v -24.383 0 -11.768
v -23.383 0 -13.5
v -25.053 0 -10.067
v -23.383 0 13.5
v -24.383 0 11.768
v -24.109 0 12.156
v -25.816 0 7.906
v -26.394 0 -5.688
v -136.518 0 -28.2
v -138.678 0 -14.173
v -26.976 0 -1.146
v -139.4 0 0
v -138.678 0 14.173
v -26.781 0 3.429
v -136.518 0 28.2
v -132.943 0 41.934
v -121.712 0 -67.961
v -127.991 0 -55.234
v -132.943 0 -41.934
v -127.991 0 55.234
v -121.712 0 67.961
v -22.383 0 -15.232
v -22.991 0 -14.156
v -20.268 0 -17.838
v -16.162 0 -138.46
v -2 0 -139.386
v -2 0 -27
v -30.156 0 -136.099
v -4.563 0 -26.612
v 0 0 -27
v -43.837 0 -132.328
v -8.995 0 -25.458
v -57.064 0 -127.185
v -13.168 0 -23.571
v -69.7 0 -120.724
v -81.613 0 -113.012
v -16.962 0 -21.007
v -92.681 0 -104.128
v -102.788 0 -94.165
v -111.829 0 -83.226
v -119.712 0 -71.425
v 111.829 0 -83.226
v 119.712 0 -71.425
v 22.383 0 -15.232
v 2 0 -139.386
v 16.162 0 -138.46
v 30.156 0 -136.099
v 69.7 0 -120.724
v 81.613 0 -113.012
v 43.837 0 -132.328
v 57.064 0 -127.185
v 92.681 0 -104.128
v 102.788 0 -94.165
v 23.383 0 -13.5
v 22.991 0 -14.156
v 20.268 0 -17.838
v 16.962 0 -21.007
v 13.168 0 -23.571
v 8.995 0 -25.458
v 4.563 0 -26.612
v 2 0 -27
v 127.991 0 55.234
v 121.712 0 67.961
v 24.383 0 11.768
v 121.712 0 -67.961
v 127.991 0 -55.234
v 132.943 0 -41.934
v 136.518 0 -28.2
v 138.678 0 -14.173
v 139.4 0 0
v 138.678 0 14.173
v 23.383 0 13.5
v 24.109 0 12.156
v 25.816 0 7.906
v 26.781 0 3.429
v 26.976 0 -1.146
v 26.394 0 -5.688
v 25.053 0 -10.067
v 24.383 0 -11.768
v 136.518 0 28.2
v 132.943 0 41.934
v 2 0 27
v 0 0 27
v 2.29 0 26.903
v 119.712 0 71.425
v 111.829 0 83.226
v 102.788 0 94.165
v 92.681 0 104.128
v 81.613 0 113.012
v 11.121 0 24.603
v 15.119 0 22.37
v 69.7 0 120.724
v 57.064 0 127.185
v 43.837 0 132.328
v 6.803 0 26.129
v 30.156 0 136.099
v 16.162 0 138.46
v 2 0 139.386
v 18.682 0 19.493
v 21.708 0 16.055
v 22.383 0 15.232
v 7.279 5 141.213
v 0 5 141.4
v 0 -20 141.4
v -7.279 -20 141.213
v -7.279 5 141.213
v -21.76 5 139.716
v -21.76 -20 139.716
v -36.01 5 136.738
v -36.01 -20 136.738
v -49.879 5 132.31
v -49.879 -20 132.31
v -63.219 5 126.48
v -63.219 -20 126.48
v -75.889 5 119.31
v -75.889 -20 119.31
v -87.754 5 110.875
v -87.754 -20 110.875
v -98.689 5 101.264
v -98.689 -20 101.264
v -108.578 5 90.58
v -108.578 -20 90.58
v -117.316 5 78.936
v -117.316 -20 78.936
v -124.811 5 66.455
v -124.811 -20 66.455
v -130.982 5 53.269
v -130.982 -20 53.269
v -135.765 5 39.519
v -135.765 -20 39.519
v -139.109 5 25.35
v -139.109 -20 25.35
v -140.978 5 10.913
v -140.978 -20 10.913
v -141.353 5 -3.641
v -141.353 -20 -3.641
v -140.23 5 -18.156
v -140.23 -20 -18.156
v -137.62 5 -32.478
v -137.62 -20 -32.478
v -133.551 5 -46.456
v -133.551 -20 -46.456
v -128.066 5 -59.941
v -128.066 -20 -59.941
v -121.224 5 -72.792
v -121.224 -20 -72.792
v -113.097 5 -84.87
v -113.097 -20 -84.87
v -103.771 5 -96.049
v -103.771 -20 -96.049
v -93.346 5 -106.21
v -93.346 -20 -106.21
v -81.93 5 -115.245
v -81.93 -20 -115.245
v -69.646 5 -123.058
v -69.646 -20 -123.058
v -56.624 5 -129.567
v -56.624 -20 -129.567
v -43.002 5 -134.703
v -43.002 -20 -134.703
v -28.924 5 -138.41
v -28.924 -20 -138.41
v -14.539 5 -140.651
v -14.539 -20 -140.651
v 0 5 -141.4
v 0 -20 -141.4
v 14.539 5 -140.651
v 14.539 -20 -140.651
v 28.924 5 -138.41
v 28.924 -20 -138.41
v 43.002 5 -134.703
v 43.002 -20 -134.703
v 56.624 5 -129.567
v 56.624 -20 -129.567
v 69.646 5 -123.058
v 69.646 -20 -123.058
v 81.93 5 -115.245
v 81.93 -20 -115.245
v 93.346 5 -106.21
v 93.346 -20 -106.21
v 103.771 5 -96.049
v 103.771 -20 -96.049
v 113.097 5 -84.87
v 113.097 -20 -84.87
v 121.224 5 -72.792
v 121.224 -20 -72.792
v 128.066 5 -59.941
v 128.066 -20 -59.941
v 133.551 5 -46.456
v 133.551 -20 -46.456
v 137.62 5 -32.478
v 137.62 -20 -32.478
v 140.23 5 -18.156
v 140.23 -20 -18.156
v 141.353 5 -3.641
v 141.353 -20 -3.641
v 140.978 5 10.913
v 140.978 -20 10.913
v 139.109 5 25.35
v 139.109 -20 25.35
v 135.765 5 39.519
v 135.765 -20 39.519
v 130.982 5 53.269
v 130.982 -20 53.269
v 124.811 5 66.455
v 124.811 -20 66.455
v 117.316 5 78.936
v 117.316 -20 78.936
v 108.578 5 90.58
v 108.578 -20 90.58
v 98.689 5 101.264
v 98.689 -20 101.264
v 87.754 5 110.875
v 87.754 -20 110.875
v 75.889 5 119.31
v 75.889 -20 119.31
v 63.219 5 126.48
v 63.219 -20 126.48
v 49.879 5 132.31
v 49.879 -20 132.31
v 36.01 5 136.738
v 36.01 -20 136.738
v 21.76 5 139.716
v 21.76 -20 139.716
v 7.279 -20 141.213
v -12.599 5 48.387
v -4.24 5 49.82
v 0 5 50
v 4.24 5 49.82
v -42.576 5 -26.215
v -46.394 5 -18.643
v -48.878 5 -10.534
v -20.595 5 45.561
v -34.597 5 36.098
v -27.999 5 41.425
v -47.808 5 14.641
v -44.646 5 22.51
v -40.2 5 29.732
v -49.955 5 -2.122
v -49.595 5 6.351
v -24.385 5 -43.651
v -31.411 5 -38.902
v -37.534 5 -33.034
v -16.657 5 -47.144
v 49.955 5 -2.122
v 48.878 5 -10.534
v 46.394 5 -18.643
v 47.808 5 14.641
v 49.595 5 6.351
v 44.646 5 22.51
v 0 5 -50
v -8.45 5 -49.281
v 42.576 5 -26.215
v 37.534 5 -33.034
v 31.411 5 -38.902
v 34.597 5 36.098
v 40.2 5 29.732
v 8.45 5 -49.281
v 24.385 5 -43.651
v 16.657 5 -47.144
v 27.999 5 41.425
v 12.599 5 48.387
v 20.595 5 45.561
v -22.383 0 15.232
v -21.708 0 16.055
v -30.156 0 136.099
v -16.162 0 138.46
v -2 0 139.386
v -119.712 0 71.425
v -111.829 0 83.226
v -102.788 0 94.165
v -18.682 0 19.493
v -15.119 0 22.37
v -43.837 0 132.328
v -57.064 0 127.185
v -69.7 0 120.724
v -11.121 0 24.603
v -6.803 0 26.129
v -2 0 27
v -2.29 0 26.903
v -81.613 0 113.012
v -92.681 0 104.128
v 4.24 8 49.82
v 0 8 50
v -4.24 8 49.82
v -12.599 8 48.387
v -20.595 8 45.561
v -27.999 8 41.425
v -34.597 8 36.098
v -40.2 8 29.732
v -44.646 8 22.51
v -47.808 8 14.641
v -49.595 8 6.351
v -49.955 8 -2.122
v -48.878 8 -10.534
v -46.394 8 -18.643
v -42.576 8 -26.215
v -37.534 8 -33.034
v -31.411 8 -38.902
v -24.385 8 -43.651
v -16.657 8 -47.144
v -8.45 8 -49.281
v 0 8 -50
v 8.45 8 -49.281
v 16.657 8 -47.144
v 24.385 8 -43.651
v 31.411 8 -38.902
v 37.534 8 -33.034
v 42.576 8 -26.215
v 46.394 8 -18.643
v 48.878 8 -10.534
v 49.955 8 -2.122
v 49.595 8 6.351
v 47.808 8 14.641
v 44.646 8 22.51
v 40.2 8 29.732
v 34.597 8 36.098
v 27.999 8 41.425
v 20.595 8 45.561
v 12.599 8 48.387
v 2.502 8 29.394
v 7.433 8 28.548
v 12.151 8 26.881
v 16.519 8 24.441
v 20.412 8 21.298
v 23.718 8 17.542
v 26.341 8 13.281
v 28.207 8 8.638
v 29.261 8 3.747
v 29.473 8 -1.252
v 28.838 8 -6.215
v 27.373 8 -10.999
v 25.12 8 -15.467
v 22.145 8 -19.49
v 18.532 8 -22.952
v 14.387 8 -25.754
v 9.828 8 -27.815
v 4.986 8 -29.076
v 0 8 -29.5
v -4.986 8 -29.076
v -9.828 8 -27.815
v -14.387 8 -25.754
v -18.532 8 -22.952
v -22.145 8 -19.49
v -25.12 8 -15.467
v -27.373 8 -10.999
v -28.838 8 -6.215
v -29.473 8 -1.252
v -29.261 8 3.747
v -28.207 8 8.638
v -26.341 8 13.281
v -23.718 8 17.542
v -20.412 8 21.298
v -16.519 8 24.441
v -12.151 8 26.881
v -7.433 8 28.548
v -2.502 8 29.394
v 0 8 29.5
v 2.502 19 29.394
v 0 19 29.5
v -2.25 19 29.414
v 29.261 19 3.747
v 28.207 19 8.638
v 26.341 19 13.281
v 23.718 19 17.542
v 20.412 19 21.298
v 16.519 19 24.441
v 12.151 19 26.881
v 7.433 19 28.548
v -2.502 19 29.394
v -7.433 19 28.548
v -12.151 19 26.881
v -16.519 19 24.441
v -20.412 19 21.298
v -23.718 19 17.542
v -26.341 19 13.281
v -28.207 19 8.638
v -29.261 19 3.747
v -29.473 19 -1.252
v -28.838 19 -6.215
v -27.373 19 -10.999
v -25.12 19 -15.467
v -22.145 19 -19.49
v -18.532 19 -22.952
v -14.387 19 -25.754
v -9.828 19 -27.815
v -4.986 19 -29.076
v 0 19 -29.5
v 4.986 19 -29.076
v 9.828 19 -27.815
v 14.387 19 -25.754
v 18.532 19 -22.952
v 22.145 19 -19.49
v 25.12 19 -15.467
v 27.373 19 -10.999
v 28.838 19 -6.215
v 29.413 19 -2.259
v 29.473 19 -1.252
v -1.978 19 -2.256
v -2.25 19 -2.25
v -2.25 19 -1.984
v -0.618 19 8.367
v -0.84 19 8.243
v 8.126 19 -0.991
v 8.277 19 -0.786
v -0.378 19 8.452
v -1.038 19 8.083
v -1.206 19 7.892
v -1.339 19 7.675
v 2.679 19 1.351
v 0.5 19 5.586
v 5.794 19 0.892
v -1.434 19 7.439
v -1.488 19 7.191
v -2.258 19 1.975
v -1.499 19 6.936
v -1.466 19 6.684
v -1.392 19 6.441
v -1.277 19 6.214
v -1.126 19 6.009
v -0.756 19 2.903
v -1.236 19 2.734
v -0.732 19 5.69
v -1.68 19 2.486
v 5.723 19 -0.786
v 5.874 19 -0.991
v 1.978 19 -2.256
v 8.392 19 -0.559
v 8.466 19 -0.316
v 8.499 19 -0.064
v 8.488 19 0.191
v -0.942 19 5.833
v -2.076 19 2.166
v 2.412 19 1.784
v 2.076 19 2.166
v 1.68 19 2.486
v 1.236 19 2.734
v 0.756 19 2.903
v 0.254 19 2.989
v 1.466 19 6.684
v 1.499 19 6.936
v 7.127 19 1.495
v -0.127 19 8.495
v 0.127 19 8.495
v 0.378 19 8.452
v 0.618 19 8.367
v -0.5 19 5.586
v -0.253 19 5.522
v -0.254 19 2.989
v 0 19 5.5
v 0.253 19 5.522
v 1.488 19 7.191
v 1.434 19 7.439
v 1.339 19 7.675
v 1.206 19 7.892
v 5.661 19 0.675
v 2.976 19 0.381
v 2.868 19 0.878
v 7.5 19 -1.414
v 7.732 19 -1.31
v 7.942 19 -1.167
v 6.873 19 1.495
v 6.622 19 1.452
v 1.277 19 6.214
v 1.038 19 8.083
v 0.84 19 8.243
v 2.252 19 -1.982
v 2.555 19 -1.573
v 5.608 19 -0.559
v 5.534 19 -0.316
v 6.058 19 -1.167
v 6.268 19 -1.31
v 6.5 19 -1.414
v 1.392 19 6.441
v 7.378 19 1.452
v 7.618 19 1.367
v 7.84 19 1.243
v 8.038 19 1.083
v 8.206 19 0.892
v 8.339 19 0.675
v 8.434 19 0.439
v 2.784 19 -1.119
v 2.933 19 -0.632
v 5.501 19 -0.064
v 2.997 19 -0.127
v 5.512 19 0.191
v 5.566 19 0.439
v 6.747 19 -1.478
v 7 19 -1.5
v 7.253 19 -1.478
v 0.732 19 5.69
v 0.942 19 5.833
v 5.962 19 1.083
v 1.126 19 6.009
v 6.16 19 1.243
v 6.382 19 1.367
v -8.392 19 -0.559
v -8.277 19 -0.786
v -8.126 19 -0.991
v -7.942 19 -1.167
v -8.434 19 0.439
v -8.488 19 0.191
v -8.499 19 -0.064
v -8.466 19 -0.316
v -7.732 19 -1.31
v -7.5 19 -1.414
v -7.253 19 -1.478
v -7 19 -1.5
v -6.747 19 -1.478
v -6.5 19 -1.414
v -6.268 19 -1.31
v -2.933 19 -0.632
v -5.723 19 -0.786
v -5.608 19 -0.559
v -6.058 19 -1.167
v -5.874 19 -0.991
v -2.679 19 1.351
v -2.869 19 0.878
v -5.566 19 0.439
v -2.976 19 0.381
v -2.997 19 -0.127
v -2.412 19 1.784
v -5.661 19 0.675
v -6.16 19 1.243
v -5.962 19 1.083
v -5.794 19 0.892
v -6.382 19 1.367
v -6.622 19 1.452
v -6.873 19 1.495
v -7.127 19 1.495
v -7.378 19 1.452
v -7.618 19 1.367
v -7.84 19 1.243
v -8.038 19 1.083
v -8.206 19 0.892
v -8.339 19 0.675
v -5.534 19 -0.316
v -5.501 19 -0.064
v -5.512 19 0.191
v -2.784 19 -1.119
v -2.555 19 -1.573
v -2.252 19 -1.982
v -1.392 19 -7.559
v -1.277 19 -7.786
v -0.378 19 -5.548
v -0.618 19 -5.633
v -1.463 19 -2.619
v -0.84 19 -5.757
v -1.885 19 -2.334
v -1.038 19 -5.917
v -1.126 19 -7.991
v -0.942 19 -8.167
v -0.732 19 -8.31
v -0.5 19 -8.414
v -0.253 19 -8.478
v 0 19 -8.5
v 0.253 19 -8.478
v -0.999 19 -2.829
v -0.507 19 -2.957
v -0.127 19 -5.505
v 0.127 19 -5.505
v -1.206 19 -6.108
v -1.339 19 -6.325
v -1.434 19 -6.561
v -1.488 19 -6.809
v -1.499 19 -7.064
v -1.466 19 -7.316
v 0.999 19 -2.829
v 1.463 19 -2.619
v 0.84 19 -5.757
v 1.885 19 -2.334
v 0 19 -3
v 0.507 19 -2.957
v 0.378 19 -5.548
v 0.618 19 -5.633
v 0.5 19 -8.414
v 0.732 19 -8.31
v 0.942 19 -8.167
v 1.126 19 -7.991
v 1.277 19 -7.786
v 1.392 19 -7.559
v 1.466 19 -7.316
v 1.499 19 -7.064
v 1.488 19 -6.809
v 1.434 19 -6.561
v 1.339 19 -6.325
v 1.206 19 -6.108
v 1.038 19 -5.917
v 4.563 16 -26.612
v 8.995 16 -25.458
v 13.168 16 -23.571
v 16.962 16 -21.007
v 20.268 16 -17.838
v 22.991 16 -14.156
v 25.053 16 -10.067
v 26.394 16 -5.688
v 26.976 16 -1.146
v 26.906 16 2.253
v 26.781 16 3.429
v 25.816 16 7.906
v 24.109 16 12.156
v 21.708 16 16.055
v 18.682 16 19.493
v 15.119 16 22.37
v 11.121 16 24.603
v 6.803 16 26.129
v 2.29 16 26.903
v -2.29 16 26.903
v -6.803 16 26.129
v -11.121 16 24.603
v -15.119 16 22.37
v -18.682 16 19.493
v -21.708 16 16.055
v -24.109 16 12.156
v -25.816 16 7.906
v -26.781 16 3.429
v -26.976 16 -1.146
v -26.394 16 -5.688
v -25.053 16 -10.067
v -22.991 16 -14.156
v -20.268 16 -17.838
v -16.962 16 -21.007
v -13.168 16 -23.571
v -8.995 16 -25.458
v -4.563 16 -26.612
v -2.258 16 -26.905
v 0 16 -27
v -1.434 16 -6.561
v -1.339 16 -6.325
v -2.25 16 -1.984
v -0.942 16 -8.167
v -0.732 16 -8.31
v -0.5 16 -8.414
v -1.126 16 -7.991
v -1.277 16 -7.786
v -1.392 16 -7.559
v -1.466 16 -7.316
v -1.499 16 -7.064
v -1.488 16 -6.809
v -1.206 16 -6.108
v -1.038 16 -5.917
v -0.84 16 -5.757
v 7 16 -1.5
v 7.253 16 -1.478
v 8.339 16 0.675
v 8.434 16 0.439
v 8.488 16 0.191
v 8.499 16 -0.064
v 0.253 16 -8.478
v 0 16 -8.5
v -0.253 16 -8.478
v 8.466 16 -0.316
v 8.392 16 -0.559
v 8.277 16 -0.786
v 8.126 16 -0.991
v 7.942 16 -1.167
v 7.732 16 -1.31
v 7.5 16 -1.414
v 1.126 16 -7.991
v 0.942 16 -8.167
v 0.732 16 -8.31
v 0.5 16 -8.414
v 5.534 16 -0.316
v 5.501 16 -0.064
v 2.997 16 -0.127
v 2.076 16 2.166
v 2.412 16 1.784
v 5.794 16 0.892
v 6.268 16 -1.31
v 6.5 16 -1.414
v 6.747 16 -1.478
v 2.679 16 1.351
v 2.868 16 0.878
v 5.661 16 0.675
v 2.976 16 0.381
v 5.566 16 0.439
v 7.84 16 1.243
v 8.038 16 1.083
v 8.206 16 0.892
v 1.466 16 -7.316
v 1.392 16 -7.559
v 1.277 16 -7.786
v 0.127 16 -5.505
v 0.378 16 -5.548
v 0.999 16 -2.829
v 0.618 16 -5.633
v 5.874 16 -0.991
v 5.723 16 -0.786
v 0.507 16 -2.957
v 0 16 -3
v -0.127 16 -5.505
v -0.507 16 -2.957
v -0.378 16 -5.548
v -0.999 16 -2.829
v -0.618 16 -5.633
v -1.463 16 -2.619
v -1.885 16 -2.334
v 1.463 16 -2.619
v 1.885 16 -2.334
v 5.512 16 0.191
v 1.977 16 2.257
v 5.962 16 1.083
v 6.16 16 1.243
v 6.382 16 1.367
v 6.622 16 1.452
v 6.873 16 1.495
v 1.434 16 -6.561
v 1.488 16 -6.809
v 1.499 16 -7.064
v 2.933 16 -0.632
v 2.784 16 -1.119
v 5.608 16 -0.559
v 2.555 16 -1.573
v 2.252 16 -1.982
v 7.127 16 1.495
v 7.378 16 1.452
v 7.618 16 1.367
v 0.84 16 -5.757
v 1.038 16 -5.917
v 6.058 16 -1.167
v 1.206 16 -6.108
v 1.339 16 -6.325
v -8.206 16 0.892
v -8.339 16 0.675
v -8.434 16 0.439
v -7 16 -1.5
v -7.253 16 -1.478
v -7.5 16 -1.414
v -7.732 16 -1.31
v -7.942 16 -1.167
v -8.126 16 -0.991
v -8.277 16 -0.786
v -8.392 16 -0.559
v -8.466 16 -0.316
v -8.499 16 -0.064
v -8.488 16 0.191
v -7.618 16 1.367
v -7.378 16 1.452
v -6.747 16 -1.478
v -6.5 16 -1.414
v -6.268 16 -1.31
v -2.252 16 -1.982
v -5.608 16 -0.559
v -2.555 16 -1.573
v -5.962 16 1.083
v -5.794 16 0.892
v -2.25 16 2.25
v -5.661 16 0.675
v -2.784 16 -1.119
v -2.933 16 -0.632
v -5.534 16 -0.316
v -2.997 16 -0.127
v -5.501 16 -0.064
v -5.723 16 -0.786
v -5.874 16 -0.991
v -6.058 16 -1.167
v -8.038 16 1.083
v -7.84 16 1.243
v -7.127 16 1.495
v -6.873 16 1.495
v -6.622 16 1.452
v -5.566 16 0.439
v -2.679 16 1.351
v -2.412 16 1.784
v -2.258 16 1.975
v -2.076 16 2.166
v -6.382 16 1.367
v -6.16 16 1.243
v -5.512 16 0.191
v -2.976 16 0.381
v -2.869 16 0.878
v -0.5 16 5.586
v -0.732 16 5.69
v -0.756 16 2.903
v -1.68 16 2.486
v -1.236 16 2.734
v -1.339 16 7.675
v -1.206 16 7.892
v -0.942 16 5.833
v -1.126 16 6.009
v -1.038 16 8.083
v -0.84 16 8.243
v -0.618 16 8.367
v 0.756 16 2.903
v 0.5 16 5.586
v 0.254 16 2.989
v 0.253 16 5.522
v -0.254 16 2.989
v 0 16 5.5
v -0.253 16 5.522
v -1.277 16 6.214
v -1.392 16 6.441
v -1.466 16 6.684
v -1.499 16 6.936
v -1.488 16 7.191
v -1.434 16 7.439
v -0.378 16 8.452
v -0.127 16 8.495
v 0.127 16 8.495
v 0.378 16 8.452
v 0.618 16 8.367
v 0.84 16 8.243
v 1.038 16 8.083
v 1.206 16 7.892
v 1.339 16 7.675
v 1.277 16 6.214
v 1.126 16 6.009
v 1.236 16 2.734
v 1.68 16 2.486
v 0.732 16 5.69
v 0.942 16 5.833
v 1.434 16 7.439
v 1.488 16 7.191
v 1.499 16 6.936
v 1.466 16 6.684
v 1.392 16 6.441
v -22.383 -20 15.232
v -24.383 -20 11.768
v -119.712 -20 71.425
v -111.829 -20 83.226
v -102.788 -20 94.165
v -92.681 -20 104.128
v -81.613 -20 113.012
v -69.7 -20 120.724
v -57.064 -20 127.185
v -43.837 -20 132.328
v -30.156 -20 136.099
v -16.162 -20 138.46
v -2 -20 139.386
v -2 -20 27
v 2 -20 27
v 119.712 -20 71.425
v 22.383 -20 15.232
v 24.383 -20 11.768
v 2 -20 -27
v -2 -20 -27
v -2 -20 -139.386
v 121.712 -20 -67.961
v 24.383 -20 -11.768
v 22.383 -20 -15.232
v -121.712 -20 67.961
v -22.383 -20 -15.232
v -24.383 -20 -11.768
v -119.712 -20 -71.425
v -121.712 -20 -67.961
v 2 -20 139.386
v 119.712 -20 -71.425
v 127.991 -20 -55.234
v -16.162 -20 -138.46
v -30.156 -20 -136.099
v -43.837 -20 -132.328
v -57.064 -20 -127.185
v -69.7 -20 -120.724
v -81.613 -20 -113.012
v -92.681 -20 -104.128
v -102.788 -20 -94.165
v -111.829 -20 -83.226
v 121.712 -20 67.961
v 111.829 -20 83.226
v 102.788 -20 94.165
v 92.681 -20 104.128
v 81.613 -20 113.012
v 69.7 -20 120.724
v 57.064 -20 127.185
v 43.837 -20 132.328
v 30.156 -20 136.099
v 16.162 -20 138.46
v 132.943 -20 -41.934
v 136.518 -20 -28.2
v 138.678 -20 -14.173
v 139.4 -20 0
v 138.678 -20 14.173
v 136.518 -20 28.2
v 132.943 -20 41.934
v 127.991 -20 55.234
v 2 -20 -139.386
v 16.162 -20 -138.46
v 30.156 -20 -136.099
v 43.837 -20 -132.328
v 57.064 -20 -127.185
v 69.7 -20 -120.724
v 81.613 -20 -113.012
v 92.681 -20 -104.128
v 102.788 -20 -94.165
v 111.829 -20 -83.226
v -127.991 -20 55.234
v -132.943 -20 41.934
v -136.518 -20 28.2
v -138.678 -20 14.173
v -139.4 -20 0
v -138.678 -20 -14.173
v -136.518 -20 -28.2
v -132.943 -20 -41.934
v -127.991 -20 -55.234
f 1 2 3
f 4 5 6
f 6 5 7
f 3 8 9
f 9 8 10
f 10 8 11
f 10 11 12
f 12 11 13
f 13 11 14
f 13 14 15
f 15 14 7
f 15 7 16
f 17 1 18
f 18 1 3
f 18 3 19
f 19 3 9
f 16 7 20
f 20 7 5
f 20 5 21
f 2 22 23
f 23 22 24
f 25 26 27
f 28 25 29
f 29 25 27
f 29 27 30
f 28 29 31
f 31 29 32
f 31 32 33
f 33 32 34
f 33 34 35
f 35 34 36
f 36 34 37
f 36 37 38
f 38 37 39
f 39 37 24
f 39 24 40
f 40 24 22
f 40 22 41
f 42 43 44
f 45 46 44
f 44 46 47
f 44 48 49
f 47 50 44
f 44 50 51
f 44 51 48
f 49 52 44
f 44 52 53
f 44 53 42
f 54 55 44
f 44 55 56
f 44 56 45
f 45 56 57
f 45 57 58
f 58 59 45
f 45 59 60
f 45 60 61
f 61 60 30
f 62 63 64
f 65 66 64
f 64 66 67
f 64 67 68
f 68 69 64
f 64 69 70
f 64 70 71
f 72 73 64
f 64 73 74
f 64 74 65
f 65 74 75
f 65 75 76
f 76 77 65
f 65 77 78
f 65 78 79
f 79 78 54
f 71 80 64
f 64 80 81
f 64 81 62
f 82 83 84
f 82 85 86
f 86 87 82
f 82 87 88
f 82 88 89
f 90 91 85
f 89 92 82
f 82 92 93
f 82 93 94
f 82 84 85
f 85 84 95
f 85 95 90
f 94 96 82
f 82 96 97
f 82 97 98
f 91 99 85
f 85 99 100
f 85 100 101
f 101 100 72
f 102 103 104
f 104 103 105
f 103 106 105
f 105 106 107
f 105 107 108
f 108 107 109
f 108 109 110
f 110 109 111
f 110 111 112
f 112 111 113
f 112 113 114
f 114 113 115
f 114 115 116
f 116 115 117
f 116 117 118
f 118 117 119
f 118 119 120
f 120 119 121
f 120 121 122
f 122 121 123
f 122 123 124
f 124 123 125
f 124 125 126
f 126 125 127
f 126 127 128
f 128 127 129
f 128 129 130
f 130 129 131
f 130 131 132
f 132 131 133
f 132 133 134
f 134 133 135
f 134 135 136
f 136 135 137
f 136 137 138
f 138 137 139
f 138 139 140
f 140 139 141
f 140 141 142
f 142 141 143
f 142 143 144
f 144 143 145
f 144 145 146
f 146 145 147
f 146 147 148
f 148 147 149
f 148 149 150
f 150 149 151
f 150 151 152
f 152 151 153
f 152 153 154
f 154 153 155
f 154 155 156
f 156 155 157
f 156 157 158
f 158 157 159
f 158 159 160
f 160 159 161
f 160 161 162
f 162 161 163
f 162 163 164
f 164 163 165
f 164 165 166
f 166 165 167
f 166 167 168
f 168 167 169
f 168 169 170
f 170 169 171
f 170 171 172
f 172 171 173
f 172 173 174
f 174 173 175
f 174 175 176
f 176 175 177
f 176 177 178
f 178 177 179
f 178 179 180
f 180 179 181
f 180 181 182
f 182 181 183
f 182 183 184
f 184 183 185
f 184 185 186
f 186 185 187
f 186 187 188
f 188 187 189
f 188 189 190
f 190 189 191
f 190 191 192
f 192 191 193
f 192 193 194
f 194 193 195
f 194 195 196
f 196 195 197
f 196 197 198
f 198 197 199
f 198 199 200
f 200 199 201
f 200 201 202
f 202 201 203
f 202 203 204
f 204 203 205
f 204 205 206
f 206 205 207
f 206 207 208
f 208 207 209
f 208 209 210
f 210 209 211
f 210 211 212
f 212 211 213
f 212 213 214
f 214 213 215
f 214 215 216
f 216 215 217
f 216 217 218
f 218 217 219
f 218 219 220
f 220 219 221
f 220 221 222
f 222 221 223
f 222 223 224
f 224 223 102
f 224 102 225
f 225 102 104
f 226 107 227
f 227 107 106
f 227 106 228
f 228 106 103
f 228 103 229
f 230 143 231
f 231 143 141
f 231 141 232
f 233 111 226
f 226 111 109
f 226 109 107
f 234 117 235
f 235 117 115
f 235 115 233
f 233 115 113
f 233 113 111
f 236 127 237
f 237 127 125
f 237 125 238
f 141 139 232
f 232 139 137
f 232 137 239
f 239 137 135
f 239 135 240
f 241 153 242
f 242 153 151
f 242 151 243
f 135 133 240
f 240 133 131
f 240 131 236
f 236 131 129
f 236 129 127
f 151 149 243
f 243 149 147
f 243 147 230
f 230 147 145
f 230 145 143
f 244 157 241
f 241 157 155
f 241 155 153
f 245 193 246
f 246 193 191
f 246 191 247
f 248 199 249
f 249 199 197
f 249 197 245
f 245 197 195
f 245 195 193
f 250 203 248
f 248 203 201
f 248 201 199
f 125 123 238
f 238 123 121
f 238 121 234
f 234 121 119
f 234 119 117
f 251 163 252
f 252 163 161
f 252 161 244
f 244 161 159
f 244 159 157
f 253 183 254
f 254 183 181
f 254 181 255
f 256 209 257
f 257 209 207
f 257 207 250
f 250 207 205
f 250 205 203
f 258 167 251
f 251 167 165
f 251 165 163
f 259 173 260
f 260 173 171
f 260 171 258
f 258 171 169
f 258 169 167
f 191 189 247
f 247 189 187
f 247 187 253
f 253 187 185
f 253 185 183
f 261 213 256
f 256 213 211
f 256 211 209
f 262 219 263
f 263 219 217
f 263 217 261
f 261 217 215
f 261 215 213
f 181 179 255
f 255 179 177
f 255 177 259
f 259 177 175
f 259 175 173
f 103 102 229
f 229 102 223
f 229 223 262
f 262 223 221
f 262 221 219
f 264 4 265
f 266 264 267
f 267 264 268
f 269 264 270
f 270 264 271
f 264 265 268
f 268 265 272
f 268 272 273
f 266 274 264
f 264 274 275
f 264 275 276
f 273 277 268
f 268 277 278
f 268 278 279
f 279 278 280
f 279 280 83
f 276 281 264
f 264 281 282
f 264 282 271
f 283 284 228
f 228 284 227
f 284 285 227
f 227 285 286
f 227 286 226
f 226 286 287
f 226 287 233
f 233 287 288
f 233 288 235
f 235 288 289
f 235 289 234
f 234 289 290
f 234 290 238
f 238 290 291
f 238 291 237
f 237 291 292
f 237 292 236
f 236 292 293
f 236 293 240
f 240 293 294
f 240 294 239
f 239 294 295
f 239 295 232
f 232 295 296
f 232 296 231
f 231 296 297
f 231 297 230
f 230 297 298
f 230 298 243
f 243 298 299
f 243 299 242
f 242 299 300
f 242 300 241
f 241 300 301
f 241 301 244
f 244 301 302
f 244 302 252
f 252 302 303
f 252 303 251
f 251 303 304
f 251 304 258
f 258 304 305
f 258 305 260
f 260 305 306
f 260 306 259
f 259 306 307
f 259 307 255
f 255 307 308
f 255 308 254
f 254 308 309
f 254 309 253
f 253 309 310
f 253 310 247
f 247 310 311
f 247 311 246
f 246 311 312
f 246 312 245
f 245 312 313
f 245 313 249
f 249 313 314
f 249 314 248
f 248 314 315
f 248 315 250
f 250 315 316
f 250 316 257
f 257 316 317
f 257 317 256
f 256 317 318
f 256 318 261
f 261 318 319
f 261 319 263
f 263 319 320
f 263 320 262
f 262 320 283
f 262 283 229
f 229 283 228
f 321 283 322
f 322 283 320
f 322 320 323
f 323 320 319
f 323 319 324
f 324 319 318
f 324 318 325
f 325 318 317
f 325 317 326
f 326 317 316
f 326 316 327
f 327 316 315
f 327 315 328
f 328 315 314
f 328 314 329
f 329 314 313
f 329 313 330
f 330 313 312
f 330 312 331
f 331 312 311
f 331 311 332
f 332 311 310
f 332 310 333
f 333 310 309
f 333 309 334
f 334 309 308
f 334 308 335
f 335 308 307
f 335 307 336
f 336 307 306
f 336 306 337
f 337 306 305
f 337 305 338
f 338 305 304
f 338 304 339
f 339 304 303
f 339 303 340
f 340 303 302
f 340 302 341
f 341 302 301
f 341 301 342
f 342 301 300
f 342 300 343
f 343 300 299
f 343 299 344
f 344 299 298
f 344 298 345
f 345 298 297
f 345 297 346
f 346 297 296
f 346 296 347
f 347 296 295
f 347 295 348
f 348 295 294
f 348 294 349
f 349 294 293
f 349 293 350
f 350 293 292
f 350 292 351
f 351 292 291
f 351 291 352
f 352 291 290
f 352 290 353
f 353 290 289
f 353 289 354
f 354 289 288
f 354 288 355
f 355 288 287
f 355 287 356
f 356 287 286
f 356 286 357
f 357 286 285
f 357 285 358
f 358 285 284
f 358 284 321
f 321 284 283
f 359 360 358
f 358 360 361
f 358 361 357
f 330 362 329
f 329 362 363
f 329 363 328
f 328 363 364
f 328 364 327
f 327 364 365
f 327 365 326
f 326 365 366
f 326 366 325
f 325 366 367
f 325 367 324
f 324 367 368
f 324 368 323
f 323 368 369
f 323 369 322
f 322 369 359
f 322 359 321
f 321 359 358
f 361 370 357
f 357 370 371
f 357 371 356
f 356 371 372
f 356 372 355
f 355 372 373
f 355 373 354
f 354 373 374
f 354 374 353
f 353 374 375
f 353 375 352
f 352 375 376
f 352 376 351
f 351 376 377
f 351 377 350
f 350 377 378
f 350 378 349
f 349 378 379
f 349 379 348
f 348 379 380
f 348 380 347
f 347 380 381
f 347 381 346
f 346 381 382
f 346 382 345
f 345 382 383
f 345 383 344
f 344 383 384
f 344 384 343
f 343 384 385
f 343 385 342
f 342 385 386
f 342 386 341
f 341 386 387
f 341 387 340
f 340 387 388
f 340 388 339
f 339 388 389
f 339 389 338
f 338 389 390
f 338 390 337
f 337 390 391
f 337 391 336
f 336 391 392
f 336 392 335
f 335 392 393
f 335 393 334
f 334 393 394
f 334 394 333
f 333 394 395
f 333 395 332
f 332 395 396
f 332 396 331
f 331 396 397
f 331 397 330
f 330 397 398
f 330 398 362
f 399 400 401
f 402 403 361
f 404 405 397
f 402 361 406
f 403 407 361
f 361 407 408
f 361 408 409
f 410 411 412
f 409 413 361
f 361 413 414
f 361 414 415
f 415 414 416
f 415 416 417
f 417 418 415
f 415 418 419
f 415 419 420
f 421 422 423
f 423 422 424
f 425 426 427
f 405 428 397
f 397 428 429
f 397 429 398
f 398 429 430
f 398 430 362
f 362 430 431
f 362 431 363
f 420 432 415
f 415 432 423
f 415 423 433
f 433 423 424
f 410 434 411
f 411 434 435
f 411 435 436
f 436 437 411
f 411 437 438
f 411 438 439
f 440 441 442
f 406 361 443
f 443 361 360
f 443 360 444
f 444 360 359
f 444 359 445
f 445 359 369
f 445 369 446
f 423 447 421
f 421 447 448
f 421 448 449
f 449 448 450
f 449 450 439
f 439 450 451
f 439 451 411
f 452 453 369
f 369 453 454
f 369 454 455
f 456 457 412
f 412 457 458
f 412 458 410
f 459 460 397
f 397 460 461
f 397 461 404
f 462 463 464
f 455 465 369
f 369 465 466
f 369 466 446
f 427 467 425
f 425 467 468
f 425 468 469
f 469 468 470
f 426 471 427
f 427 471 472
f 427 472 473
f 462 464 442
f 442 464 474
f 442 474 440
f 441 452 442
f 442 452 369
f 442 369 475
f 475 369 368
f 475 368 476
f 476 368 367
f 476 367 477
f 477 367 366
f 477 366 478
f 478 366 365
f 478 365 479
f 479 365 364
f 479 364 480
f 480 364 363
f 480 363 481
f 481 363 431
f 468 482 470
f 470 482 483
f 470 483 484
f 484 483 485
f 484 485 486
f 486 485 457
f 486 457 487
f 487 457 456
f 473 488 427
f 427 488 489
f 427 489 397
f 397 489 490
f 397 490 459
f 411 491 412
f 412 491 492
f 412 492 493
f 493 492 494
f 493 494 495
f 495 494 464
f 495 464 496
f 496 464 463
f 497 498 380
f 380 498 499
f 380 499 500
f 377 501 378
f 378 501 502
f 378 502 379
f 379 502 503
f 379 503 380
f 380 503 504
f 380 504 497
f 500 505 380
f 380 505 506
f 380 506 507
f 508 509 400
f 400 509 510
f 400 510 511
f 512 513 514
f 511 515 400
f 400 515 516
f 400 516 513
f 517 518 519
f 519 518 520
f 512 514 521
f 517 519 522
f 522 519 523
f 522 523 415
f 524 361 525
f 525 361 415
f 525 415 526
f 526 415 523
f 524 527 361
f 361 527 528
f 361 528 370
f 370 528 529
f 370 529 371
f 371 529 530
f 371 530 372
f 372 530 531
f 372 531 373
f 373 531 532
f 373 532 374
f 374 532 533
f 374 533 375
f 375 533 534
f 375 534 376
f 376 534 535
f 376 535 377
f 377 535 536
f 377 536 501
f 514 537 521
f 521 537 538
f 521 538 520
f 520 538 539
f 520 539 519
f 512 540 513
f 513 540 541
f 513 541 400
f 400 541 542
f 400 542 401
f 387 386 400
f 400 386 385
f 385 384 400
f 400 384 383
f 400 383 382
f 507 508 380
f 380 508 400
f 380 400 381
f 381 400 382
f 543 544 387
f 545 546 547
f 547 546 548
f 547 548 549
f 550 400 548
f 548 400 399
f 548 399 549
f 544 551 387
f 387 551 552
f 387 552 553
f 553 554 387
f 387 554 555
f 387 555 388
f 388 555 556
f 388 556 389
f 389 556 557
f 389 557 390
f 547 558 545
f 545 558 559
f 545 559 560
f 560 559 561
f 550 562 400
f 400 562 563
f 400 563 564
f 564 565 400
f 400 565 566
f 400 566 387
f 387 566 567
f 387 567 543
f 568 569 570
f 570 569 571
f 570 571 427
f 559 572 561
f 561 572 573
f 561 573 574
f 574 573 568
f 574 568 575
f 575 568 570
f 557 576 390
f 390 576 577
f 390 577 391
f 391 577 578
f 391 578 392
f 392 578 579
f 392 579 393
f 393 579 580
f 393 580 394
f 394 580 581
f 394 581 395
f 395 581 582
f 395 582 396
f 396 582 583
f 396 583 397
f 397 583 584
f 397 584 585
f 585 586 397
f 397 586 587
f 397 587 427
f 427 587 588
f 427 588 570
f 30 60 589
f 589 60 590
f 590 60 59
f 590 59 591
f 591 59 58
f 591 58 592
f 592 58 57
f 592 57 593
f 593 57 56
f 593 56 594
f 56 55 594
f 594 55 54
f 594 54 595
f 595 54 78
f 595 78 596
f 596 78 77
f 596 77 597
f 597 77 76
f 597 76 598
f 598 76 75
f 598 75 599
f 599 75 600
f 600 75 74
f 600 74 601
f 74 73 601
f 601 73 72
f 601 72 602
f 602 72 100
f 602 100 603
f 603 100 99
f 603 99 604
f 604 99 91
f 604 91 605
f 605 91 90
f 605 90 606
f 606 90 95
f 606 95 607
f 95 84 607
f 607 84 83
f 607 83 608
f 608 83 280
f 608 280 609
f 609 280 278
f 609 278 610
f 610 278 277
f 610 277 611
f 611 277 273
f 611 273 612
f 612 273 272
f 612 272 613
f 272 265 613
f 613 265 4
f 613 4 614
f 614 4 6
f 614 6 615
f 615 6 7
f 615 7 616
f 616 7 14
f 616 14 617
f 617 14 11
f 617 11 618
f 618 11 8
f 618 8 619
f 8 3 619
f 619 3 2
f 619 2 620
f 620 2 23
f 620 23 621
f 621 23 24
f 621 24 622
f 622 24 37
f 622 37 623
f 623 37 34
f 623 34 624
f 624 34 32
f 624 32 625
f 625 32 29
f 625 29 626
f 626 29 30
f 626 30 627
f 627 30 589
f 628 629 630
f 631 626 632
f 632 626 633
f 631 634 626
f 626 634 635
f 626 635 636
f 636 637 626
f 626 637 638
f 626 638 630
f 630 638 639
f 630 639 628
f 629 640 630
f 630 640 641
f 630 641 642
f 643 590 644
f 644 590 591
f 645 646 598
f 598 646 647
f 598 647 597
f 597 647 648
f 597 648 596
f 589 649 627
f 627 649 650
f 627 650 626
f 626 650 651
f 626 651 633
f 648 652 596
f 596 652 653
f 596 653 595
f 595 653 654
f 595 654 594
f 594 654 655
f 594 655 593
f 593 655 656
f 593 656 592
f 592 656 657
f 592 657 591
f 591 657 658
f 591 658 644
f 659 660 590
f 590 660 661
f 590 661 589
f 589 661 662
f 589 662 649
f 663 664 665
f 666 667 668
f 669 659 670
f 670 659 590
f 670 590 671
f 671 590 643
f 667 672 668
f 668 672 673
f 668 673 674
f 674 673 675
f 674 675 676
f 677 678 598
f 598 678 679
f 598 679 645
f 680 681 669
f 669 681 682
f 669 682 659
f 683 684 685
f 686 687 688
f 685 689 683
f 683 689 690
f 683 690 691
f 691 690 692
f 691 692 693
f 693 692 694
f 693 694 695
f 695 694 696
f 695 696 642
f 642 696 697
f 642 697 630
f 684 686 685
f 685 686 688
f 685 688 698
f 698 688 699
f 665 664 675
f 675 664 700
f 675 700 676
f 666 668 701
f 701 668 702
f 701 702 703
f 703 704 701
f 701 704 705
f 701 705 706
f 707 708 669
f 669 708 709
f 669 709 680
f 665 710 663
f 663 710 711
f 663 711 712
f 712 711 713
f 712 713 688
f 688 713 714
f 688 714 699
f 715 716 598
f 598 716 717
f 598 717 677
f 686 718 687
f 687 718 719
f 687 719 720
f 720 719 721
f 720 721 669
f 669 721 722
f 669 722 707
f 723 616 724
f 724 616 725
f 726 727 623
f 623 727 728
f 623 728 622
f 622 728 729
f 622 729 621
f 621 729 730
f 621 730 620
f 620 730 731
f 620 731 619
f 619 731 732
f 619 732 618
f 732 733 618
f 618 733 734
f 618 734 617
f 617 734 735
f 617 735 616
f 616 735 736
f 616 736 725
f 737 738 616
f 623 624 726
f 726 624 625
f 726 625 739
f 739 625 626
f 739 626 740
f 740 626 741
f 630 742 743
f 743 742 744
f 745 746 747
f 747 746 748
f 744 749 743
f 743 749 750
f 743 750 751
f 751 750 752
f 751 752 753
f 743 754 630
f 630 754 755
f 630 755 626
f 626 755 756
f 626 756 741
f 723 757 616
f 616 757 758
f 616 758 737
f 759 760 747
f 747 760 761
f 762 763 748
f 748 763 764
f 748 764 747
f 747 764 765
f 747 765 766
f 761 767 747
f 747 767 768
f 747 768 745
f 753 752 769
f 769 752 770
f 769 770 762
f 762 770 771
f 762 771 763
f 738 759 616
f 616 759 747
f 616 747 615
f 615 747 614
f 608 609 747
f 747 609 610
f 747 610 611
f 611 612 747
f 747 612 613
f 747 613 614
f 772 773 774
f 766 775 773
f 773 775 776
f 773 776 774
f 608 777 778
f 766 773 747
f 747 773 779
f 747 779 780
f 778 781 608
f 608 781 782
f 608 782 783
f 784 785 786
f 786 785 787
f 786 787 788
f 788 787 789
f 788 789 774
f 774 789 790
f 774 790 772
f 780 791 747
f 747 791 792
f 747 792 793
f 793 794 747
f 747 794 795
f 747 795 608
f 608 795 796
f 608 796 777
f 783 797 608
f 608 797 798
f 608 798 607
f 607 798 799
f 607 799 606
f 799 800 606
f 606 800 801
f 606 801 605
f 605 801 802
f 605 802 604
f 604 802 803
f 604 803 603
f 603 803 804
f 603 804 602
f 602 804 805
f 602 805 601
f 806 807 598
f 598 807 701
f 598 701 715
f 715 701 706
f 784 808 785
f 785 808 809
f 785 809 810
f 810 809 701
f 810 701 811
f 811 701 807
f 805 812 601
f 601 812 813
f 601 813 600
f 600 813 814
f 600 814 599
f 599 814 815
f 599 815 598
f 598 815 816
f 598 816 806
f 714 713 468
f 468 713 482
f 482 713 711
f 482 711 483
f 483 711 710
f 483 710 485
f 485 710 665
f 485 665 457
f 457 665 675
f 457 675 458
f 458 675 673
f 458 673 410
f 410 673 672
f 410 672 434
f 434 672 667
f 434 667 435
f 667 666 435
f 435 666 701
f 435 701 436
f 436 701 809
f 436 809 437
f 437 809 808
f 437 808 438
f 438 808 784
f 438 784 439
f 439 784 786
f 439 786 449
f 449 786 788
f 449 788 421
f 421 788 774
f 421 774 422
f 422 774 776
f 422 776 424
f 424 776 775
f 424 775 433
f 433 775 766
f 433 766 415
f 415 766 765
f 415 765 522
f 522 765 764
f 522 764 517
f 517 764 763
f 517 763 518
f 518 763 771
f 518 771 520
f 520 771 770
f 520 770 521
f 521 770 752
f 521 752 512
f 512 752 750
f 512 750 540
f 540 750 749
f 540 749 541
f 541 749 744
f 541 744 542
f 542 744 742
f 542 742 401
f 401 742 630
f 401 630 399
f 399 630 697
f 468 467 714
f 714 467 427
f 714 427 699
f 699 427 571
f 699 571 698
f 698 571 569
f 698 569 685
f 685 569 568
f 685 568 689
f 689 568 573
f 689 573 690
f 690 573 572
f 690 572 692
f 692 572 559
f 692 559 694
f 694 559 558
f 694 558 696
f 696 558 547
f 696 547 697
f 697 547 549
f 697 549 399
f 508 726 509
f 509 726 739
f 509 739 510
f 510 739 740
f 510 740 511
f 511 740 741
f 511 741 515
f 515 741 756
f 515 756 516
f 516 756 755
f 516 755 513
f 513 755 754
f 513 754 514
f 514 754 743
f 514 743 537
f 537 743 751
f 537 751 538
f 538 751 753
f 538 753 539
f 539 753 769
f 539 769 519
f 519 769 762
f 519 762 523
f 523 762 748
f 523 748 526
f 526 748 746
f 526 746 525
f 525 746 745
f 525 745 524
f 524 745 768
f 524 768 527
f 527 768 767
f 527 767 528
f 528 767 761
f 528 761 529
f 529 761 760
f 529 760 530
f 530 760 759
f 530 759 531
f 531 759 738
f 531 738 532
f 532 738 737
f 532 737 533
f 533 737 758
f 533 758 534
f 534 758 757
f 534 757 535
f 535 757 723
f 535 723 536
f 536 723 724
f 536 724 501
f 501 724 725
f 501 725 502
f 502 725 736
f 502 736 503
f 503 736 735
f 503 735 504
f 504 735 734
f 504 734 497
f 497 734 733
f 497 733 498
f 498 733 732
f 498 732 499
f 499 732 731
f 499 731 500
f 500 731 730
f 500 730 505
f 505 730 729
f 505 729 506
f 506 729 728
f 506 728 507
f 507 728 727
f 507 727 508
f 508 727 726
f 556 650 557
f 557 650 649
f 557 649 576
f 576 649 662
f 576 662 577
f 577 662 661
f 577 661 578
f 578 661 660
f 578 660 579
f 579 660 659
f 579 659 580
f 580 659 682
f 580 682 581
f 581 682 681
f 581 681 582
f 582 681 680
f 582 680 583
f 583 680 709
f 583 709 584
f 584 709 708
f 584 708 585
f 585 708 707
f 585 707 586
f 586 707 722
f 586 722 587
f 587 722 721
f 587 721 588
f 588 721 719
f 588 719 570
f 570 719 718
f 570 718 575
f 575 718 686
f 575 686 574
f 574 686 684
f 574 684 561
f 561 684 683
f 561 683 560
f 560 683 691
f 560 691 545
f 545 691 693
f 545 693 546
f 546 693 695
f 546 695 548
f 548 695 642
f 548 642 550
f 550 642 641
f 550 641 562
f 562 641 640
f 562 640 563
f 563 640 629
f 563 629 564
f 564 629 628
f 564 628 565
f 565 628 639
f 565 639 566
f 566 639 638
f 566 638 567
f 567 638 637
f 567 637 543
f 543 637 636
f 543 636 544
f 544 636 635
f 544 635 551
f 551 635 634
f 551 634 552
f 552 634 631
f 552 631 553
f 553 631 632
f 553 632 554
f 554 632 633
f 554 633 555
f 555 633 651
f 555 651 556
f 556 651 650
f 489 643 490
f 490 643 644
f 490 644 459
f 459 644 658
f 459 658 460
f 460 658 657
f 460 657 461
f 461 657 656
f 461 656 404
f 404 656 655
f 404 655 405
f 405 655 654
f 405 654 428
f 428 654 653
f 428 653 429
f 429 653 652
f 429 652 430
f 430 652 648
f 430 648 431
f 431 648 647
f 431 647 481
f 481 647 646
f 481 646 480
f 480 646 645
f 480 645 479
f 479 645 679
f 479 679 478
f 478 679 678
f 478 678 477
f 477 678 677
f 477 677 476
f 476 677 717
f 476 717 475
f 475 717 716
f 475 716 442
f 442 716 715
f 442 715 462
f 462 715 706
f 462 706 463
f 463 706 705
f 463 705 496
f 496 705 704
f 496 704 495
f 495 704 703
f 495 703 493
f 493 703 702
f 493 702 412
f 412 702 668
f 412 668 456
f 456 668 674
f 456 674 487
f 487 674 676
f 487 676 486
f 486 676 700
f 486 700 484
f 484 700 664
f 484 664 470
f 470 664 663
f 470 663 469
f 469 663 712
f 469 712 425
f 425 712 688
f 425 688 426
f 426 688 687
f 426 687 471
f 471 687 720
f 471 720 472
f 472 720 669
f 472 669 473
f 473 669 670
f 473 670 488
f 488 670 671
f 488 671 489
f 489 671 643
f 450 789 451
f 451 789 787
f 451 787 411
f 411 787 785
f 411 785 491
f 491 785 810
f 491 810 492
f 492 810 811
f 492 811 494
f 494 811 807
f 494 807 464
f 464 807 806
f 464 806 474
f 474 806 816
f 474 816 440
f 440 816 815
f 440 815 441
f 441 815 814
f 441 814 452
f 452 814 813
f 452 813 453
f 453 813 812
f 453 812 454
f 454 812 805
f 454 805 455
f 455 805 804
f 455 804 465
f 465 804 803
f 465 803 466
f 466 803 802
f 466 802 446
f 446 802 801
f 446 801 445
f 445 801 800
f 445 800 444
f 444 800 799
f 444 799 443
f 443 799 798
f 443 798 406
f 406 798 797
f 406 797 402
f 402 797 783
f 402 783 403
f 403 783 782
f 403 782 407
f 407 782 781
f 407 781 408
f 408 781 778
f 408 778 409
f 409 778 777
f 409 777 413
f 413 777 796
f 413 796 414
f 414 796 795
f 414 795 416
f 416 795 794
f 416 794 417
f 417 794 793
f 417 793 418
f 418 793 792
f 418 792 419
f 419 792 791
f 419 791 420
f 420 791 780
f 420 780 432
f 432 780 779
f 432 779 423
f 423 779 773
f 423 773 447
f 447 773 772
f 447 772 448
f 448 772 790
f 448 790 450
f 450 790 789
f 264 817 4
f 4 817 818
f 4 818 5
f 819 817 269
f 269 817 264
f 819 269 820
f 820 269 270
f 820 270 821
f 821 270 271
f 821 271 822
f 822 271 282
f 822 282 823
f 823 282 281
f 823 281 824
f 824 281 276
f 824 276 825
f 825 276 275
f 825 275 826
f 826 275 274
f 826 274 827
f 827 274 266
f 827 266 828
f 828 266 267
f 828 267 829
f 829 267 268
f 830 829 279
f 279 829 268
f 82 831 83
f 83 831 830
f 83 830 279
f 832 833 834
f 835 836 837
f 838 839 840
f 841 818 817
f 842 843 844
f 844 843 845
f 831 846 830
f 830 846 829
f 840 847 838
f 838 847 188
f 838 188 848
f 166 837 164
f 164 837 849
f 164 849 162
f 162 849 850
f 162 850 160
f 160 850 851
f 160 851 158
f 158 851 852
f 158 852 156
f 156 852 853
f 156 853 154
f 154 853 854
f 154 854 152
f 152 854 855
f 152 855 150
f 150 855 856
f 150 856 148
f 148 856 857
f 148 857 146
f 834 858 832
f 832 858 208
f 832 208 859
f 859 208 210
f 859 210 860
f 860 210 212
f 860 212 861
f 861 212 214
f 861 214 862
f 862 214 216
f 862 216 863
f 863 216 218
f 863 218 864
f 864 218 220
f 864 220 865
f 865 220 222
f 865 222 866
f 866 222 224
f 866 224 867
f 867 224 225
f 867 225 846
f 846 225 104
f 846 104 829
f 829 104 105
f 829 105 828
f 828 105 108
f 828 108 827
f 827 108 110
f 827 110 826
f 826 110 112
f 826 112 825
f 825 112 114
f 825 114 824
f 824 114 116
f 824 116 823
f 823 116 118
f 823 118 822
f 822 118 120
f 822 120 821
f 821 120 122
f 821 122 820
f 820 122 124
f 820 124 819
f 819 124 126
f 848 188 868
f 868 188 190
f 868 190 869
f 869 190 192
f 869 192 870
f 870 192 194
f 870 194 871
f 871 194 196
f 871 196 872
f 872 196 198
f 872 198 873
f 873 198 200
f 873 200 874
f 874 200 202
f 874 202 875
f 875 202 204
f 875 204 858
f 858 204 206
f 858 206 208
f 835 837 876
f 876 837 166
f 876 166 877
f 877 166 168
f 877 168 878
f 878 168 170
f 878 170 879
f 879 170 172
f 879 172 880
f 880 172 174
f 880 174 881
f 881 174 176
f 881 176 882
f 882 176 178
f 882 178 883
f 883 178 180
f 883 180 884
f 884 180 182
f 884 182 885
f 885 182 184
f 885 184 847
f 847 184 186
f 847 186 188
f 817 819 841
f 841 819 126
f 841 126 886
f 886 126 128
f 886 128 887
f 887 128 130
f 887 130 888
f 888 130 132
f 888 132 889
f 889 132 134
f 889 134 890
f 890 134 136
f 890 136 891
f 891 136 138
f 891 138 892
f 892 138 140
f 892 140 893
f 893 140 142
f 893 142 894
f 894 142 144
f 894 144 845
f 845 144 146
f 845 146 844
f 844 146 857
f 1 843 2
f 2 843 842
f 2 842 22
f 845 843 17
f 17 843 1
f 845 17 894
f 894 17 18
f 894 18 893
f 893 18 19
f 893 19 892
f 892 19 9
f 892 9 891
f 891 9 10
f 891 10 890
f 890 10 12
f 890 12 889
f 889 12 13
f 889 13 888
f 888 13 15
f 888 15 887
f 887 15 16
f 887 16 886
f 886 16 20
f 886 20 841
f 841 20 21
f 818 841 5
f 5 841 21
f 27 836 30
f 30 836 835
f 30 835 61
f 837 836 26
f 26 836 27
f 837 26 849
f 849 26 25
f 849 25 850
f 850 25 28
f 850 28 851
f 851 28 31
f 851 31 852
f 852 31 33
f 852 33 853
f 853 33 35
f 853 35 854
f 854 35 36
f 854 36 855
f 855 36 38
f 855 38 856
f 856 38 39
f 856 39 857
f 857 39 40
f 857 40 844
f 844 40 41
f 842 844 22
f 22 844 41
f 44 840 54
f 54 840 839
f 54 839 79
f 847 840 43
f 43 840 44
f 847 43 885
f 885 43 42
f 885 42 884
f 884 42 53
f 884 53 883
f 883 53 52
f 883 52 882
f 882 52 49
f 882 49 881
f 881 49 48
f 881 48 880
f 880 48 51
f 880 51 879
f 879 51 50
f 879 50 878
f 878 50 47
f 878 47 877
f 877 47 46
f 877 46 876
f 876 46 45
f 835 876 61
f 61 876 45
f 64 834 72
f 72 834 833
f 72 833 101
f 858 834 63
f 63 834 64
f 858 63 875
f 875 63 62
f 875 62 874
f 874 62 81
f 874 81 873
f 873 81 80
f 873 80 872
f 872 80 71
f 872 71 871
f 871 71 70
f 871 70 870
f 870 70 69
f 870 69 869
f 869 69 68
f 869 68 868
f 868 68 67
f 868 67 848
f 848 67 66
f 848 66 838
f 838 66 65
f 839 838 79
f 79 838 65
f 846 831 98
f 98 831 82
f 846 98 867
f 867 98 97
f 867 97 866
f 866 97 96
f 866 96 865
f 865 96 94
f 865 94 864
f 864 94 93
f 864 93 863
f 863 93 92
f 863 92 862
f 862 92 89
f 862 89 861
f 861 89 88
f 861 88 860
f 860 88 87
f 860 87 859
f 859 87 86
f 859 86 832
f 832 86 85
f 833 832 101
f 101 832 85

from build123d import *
from build123d.topology import SkipClean

# Parameters (mm, degrees)
SKETCH_1_R               = 141.4
EXTRUDE_1_DEPTH          = 5
SKETCH_2_R               = 50
EXTRUDE_2_DEPTH          = 3
SKETCH_3_R               = 29.5
EXTRUDE_3_DEPTH          = 11
SKETCH_4_R               = 27
CUT_EXTRUDE_1_DEPTH      = 16
SKETCH_5_R               = 3
SKETCH_5_R_2             = 1.5
CUT_EXTRUDE_2_DEPTH      = 201.608873184
EXTRUDE_START            = 20
EXTRUDE_1_2_DEPTH        = 20
PATTERN_CIRCULAR_1_COUNT = 6


with BuildPart() as part:
    # 草图1 → Extrude 1 (new body)
    with BuildSketch(Plane(origin=(0, 0, 0), x_dir=(1, 0, 0), z_dir=(0, 1, 0))):
        with Locations(Location((0, 0, 0), (0, 0, 270))):
            Circle(SKETCH_1_R)
    extrude(amount=EXTRUDE_1_DEPTH)

    # 草图2 → 凸台-拉伸2 (add)
    with BuildSketch(Plane(origin=(0, 5, 0), x_dir=(1, 0, 0), z_dir=(0, 1, 0))):
        with Locations(Location((0, 0, 0), (0, 0, 270))):
            Circle(SKETCH_2_R)
    extrude(amount=EXTRUDE_2_DEPTH)

    # 草图3 → 凸台-拉伸3 (add)
    with BuildSketch(Plane(origin=(0, 8, 0), x_dir=(1, 0, 0), z_dir=(0, 1, 0))):
        with Locations(Location((0, 0, 0), (0, 0, 270))):
            Circle(SKETCH_3_R)
    extrude(amount=EXTRUDE_3_DEPTH)

    # 草图4 → 切除-拉伸1 (cut)
    with BuildSketch(Plane.XZ):
        with Locations(Location((0, 0, 0), (0, 0, 270))):
            Circle(SKETCH_4_R)
    extrude(amount=-CUT_EXTRUDE_1_DEPTH, mode=Mode.SUBTRACT)

    # 草图5 → 切除-拉伸2 (cut, through all)
    with BuildSketch(Plane.XZ.offset(-16)):
        with Locations(Location((0, 0, 0), (0, 0, 270))):
            Circle(SKETCH_5_R)
        with Locations(Location((0, 7, 0), (0, 0, 270))):
            Circle(SKETCH_5_R_2)
        with Locations(Location((7, 0, 0), (0, 0, 270))):
            Circle(SKETCH_5_R_2)
        with Locations(Location((0, -7, 0), (0, 0, 270))):
            Circle(SKETCH_5_R_2)
        with Locations(Location((-7, 0, 0), (0, 0, 270))):
            Circle(SKETCH_5_R_2)
    extrude(amount=-CUT_EXTRUDE_2_DEPTH, mode=Mode.SUBTRACT)

    # 草图6 → Extrude 1 2 (add)
    with SkipClean():  # the faces are left unmerged after this step: merging them gives an invalid solid
        with BuildSketch(Plane.XZ.offset(EXTRUDE_START)):
            with BuildLine():
                Line((-23.382685902, 13.5), (-122.455992095, 70.7))
                ThreePointArc((-122.455992095, 70.7), (-70.7, 122.455992095), (0, 141.4))
                Line((0, 141.4), (0, 27))
                Line((0, 27), (-2, 27))
                Line((-2, 27), (-2, 139.385652059))
                ThreePointArc((-2, 139.385652059), (-69.7, 120.723941288), (-119.711515606, 71.424876837))
                Line((-119.711515606, 71.424876837), (-22.382685902, 15.232050808))
                Line((-22.382685902, 15.232050808), (-23.382685902, 13.5))
            make_face()
        extrude_1_2 = extrude(amount=-EXTRUDE_1_2_DEPTH)

    # 阵列(圆周)1: Extrude 1 2 ×6 about axis
    pattern_circular_1_axis = Axis((0, 0, 0), (0, 1, 0))
    for i in range(1, PATTERN_CIRCULAR_1_COUNT):
        add(extrude_1_2.rotate(pattern_circular_1_axis, i * 360 / PATTERN_CIRCULAR_1_COUNT))


solid = part.part
